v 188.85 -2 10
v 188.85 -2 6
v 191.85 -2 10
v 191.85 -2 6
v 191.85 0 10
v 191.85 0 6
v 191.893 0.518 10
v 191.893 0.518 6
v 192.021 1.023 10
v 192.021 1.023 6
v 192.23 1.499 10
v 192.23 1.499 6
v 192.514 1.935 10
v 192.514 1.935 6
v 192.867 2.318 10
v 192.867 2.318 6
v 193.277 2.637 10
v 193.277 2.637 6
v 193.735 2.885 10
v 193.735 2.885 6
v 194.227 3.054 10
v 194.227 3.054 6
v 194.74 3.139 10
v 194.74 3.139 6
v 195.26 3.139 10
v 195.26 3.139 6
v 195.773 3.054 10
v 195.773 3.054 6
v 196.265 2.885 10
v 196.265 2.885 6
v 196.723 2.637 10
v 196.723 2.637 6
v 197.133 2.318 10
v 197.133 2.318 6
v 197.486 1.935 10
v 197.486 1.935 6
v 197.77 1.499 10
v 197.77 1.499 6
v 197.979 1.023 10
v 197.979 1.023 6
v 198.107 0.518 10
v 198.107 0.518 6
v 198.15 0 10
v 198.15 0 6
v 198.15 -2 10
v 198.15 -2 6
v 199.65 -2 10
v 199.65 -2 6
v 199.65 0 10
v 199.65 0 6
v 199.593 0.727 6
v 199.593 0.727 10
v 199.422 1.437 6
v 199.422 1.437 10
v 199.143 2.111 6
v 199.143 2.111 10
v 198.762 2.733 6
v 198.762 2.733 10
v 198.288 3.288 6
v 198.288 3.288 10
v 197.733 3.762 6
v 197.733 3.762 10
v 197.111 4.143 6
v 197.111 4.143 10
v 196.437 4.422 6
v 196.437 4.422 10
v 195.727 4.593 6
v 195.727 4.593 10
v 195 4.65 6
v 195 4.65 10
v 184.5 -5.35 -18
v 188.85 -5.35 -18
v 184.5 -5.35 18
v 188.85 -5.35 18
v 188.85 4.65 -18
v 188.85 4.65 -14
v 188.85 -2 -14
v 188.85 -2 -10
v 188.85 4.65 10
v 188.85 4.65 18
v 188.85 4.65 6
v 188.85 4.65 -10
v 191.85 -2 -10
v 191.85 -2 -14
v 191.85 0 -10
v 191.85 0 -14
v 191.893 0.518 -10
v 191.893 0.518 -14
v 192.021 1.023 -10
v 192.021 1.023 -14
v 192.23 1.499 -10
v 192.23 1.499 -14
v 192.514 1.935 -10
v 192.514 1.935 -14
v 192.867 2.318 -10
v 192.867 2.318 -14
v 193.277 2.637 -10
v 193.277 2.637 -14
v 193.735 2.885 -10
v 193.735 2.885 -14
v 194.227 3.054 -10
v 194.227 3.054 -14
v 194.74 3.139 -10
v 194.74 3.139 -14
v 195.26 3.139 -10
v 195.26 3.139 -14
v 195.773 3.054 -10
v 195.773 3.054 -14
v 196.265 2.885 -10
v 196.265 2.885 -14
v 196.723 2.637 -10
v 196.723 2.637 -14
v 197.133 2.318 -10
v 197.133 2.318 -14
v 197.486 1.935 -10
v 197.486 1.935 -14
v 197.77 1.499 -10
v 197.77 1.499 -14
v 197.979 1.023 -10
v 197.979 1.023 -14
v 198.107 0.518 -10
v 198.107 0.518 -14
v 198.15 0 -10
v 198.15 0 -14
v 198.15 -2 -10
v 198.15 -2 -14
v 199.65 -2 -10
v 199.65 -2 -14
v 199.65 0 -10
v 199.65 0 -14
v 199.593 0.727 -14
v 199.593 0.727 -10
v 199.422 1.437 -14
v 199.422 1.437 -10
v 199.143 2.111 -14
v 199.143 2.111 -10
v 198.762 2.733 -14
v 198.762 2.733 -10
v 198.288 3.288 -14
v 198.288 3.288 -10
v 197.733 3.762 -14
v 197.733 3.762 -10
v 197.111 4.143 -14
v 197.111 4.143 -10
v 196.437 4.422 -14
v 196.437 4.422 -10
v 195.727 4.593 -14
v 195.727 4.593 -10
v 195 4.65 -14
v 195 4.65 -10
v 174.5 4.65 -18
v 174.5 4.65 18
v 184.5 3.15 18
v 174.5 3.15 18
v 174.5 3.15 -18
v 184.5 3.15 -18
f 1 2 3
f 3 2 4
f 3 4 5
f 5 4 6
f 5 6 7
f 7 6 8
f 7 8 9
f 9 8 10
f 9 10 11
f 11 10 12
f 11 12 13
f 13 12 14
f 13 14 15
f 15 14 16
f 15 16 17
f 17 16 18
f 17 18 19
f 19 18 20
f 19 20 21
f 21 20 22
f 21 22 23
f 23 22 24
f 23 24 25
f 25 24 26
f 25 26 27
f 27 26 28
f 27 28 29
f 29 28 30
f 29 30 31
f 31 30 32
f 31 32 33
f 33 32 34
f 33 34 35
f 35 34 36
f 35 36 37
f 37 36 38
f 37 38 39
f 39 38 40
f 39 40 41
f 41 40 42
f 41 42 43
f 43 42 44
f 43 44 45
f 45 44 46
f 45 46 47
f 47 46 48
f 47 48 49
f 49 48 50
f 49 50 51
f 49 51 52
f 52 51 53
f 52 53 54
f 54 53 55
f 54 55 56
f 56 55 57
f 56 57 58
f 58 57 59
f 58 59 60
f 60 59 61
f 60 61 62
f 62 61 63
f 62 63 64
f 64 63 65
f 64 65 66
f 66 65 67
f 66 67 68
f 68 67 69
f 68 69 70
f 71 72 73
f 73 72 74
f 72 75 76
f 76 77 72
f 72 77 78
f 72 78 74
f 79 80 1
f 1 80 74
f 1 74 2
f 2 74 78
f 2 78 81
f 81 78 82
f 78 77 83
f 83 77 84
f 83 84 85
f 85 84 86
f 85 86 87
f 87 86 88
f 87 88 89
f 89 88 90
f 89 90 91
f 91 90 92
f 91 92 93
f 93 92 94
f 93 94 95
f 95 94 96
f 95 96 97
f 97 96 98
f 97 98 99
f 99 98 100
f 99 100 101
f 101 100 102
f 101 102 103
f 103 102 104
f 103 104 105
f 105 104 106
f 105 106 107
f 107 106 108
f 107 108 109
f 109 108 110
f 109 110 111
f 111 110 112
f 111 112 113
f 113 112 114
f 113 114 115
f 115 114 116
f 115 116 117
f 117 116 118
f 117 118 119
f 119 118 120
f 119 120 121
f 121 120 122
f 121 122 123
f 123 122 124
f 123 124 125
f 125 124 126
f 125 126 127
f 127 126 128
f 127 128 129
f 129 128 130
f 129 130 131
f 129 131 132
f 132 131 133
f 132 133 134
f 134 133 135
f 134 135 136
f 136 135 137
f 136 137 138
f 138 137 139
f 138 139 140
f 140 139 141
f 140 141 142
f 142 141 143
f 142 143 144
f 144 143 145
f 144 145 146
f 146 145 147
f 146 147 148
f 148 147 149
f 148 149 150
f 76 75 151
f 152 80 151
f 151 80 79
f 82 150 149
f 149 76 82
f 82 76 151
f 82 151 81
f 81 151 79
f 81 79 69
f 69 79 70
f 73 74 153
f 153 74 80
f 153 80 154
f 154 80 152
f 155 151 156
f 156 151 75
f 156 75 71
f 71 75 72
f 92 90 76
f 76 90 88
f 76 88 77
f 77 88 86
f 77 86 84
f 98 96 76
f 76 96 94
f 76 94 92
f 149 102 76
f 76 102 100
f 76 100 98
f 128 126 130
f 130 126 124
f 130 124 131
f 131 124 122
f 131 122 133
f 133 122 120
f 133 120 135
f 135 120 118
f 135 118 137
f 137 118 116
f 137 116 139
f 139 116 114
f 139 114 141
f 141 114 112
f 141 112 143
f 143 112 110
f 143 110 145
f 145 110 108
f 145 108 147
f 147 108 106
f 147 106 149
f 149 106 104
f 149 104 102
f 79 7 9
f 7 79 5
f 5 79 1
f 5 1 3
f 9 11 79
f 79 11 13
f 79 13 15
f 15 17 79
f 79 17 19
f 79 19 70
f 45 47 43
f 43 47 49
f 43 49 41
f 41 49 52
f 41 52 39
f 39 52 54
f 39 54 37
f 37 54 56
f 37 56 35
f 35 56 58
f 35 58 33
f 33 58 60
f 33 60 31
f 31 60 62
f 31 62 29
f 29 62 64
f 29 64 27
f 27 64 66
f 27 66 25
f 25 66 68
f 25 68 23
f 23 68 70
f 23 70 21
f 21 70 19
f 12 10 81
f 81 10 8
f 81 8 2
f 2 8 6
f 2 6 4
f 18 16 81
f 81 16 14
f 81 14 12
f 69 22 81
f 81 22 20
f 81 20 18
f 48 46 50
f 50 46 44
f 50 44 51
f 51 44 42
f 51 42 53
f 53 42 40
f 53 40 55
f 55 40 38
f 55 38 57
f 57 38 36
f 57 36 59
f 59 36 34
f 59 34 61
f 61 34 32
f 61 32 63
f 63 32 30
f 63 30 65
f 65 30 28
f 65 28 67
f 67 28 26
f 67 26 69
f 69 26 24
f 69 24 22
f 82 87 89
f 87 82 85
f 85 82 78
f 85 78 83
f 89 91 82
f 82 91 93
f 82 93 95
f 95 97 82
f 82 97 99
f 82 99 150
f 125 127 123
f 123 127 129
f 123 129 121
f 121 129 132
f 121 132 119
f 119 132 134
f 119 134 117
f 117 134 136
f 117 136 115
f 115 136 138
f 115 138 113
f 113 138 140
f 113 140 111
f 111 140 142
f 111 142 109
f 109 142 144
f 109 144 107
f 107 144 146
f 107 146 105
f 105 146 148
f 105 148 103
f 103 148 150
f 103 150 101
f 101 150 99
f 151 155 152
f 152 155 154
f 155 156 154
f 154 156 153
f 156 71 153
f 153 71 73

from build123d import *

# Parameters (mm, degrees)
AUFSATZ_LINEAR_AUSTRAGEN2_DEPTH = 18
SKIZZE3_W                       = 10.8
SKIZZE3_H                       = 4
SKIZZE3_H_2                     = 16
SKIZZE3_H_3                     = 8
SCHNITT_LINEAR_AUSTRAGEN1_DEPTH = 201.709049372
SCHNITT_LINEAR_AUSTRAGEN2_DEPTH = 203.940249827


with BuildPart() as part:
    # Skizze1 → Aufsatz-Linear austragen2 (new, symmetric)
    with BuildSketch(Plane.XY):
        with BuildLine():
            Line((-198.15, 0), (-198.15, -2))
            Line((-198.15, -2), (-199.65, -2))
            Line((-199.65, -2), (-199.65, 0))
            ThreePointArc((-199.65, 0), (-198.288046533, 3.288046533), (-195, 4.65))
            Line((-195, 4.65), (195, 4.65))
            ThreePointArc((195, 4.65), (198.288046533, 3.288046533), (199.65, 0))
            Line((199.65, 0), (199.65, -2))
            Line((199.65, -2), (198.15, -2))
            Line((198.15, -2), (198.15, 0))
            ThreePointArc((198.15, 0), (195, 3.15), (191.85, 0))
            Line((191.85, 0), (191.85, -2))
            Line((191.85, -2), (188.85, -2))
            Line((188.85, -2), (188.85, -5.35))
            Line((188.85, -5.35), (-188.85, -5.35))
            Line((-188.85, -5.35), (-188.85, -2))
            Line((-188.85, -2), (-191.85, -2))
            Line((-191.85, -2), (-191.85, 0))
            ThreePointArc((-191.85, 0), (-195, 3.15), (-198.15, 0))
        make_face()
    extrude(amount=AUFSATZ_LINEAR_AUSTRAGEN2_DEPTH, both=True)

    # Skizze3 → Schnitt-Linear austragen1 (cut, through all)
    with BuildSketch(Plane.XZ.offset(5.35)):
        with Locations((-194.25, 16)):
            Rectangle(SKIZZE3_W, SKIZZE3_H)
        with Locations((-194.25, 2)):
            Rectangle(SKIZZE3_W, SKIZZE3_H_2)
        with Locations((-194.25, -14)):
            Rectangle(SKIZZE3_W, SKIZZE3_H_3)
        with Locations((194.25, 14)):
            Rectangle(SKIZZE3_W, SKIZZE3_H_3)
        with Locations((194.25, -2)):
            Rectangle(SKIZZE3_W, SKIZZE3_H_2)
        with Locations((194.25, -16)):
            Rectangle(SKIZZE3_W, SKIZZE3_H)
    extrude(amount=-SCHNITT_LINEAR_AUSTRAGEN1_DEPTH, mode=Mode.SUBTRACT)

    # Skizze4 → Schnitt-Linear austragen2 (cut, through all)
    with BuildSketch(Plane.XY.offset(18)):
        Polygon((174.5, 4.65), (174.5, 3.15), (184.5, 3.15), (184.5, -5.35), (-199.65, -5.35), (-199.65, 4.65), align=None)
    extrude(amount=-SCHNITT_LINEAR_AUSTRAGEN2_DEPTH, mode=Mode.SUBTRACT)


solid = part.part
